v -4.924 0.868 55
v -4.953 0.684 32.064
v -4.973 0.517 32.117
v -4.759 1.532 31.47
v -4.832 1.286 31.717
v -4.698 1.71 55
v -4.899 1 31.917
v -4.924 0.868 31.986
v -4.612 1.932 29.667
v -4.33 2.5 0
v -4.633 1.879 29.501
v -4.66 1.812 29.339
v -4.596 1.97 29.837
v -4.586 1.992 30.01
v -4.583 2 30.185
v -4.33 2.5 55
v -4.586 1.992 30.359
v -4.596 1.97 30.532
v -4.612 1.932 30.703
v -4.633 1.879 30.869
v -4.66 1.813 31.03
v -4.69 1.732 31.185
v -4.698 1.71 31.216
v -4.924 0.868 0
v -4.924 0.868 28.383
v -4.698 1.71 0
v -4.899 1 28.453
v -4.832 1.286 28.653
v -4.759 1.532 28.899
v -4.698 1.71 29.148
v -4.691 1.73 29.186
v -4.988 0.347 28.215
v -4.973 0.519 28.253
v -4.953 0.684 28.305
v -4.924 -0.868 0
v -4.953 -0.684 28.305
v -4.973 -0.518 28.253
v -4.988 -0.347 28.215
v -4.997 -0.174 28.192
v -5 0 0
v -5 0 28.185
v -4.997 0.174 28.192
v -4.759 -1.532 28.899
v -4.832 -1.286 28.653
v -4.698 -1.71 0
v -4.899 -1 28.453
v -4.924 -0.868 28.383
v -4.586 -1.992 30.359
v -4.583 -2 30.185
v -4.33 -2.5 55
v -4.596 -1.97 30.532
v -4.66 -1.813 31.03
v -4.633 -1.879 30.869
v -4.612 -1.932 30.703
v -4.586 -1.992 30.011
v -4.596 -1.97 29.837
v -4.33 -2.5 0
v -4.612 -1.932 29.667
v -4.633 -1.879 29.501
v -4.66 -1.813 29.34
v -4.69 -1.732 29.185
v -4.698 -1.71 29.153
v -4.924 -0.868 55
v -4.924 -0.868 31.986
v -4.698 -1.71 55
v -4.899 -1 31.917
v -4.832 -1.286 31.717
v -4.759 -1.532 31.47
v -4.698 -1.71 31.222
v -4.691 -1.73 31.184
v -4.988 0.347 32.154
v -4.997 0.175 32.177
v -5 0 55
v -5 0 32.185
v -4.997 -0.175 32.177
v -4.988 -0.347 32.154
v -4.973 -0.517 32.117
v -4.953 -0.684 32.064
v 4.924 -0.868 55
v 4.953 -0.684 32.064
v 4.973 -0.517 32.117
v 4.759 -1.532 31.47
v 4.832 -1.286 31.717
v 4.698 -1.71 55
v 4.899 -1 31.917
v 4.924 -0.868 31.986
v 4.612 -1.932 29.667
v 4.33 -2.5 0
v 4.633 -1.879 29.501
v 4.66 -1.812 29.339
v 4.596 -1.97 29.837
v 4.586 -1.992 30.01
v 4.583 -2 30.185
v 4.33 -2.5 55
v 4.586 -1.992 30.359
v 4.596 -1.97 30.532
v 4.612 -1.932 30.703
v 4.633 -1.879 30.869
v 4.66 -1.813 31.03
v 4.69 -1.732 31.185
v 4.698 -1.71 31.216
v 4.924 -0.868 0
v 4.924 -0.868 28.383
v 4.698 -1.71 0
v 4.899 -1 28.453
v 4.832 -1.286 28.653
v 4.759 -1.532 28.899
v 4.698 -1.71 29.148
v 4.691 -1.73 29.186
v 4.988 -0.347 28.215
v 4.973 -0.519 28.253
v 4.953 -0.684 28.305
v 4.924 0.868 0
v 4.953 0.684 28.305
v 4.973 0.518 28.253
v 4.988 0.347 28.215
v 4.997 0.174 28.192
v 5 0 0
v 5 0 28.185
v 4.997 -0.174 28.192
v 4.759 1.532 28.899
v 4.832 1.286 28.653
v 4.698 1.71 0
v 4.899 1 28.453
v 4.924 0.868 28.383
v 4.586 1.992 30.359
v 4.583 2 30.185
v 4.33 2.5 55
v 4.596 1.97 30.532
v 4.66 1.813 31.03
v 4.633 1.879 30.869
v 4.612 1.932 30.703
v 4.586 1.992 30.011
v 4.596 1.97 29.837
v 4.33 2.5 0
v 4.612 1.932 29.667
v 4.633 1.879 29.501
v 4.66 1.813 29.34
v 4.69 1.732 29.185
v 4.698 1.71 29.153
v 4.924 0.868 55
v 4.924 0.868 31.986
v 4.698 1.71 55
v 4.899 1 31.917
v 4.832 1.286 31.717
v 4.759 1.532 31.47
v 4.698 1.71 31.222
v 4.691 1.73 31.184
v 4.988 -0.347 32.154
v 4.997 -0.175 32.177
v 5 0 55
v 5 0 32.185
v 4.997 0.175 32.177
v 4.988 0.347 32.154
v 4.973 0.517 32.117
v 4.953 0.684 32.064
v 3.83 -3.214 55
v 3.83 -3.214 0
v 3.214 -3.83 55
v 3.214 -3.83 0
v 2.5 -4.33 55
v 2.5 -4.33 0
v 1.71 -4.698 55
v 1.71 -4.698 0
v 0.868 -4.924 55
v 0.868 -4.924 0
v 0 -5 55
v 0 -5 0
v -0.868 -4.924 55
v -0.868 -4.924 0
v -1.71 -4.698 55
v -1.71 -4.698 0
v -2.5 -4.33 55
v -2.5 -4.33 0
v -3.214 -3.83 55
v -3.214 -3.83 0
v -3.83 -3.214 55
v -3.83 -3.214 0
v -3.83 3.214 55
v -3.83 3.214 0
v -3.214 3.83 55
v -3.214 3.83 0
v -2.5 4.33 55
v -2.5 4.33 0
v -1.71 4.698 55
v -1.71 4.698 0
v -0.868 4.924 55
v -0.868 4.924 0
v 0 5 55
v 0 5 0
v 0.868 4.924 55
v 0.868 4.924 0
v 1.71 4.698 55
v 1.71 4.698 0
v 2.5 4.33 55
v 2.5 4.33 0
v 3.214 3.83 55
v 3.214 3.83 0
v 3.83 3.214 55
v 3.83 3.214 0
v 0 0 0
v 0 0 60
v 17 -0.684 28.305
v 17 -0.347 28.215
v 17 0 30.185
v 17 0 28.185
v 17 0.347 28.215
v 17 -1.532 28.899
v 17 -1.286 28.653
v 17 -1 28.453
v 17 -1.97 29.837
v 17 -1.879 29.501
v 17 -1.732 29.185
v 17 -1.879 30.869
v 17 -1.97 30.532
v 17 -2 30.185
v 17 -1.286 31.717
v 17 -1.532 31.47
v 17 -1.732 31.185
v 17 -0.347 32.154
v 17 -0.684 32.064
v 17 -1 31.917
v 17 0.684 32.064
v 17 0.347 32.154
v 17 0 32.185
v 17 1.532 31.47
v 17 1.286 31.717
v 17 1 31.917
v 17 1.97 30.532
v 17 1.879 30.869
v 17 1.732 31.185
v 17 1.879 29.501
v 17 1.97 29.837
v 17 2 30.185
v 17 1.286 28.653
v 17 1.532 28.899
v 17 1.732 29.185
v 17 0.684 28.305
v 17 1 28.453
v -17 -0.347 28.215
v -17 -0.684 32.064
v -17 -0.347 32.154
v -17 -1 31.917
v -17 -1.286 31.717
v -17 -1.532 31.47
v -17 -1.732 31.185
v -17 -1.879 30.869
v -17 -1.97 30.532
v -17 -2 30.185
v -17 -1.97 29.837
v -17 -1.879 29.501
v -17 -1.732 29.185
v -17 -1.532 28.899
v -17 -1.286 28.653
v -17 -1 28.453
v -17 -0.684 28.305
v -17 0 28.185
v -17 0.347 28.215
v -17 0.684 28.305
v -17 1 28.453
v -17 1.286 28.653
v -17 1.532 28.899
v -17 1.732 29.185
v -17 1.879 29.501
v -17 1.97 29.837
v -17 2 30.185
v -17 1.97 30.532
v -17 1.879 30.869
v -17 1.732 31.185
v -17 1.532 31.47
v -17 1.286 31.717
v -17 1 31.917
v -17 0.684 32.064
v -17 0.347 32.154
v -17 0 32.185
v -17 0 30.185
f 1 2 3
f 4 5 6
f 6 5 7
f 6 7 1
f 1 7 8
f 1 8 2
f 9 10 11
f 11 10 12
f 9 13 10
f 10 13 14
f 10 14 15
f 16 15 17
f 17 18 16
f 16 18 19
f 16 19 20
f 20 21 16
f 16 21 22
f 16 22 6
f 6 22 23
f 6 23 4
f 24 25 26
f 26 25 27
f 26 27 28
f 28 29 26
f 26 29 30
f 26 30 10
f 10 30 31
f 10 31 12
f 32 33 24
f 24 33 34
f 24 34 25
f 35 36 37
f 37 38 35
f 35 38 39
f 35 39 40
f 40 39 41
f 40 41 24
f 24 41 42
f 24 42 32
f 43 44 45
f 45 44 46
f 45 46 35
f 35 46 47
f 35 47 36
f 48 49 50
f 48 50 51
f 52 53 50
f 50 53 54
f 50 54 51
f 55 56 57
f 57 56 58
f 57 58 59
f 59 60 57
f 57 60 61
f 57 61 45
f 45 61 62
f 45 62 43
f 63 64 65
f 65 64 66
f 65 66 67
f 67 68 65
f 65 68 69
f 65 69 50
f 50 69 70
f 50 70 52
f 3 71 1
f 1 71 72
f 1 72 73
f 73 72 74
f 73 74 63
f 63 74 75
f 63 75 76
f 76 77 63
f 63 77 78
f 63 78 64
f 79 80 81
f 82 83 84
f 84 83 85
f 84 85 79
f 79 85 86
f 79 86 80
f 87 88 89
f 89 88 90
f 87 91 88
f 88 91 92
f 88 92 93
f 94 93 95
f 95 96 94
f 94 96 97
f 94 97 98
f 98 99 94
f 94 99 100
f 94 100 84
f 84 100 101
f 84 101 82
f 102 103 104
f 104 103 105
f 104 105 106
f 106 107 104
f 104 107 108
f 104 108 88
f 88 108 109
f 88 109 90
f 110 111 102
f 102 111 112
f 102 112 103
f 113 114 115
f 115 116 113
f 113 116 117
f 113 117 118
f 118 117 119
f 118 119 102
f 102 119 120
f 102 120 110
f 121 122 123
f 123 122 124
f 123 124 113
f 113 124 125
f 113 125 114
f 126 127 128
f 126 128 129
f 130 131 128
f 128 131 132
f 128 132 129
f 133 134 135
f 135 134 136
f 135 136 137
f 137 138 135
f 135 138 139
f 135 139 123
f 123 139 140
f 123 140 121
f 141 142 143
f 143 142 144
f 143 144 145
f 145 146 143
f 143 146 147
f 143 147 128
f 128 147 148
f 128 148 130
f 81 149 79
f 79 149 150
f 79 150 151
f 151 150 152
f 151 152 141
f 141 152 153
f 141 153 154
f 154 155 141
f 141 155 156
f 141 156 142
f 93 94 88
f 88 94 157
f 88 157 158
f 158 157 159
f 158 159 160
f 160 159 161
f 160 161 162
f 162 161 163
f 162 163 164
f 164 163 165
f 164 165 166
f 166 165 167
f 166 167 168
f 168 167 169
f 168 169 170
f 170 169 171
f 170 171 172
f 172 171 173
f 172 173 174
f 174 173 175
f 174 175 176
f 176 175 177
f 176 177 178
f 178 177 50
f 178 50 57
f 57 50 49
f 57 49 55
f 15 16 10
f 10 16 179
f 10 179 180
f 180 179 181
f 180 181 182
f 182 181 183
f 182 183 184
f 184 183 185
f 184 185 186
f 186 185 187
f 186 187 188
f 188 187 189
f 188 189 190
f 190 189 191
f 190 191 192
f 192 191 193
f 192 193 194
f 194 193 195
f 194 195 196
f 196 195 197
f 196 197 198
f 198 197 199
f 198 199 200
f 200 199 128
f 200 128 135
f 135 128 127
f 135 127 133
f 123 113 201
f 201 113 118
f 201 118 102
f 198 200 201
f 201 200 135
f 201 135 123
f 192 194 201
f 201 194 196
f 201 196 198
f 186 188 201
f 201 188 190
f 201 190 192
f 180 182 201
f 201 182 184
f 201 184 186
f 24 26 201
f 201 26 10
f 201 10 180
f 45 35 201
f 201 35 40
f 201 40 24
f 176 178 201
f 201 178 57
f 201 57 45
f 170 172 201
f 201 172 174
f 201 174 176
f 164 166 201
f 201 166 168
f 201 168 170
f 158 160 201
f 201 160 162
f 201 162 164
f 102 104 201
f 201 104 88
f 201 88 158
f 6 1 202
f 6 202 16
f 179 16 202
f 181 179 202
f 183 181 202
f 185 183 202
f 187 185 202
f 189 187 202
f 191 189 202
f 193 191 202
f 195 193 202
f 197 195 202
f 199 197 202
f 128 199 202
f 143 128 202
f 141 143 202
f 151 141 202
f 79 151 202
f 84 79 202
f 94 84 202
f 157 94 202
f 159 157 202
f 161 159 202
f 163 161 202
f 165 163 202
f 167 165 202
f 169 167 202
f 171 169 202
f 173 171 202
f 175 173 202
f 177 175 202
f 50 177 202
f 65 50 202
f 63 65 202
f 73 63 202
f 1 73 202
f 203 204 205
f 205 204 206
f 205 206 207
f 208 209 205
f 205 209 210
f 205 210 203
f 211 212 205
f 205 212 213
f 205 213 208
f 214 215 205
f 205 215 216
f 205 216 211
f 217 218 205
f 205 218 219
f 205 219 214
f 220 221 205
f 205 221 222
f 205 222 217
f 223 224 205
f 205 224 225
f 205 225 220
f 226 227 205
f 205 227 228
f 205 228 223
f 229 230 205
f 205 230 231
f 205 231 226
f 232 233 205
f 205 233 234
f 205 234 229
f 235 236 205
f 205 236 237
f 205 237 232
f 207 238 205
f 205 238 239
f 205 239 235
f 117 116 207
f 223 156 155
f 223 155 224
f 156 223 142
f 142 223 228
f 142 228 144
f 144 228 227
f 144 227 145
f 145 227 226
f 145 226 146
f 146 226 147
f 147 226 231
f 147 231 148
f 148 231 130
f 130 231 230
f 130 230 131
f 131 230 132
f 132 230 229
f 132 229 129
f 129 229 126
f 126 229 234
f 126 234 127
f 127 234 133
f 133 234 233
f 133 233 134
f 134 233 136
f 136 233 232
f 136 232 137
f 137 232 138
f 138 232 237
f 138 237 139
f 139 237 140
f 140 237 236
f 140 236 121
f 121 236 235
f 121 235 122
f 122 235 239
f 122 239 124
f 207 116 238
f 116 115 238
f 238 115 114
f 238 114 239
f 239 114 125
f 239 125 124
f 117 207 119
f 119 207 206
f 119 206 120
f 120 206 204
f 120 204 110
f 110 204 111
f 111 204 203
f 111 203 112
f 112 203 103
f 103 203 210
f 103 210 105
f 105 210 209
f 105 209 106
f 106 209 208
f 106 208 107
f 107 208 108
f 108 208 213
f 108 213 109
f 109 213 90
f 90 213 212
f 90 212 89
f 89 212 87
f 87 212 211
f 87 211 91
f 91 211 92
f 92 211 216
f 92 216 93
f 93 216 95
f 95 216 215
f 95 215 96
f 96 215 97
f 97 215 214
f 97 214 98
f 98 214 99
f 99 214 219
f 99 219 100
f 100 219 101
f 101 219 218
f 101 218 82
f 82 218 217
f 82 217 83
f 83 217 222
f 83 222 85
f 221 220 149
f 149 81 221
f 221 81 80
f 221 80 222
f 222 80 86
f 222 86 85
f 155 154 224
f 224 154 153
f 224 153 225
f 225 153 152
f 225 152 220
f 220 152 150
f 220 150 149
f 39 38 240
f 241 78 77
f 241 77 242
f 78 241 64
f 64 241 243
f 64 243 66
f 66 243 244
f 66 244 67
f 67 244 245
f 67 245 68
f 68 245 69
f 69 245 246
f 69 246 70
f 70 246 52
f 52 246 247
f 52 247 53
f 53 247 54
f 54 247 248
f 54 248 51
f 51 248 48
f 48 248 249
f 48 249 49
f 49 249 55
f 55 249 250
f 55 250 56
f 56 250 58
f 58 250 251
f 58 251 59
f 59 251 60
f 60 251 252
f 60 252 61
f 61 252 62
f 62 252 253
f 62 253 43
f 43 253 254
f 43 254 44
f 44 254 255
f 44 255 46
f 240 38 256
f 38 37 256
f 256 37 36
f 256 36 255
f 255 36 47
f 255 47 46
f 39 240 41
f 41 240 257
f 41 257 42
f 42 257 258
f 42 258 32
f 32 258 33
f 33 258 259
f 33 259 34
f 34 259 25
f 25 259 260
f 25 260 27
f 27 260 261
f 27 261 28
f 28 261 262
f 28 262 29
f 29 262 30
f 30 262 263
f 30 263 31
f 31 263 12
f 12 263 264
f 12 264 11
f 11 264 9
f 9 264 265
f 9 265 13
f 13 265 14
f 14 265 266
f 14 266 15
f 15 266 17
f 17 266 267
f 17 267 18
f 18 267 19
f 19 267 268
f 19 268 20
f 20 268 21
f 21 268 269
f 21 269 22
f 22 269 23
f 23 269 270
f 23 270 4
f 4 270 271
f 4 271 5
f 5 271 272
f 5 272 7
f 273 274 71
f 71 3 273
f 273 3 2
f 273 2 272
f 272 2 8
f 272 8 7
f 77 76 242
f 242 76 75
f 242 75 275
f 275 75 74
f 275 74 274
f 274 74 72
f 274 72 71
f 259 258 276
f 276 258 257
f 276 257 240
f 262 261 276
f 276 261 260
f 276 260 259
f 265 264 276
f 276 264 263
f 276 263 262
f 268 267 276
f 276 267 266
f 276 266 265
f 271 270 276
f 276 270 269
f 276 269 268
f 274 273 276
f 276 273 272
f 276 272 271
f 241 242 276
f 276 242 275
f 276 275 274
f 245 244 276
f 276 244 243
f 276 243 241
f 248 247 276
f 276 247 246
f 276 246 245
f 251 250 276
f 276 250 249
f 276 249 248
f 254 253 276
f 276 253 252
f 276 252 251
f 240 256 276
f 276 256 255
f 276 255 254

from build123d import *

# Parameters (mm, degrees)
SKETCH_27_R      = 5
EXTRUDE_14_DEPTH = 60
CHAMFER_2_SIZE   = 5
SKETCH_29_R      = 2
EXTRUDE_15_DEPTH = 17


with BuildPart() as part:
    # 草图27 → 凸台-拉伸14 (new body)
    with BuildSketch(Plane.XY):
        Circle(SKETCH_27_R)
    extrude(amount=EXTRUDE_14_DEPTH)

    # 倒角2
    chamfer_2_edges = [part.edges().sort_by_distance(p)[0] for p in [
        (-5, 0, 60),
    ]]
    chamfer(chamfer_2_edges, length=CHAMFER_2_SIZE)

    # 草图29 → 凸台-拉伸15 (add, symmetric)
    with BuildSketch(Plane(origin=(0, 0, 0), x_dir=(0, 0, -1), z_dir=(1, 0, 0))):
        with Locations((-30.18471694, 0)):
            Circle(SKETCH_29_R)
    extrude(amount=EXTRUDE_15_DEPTH, both=True)


solid = part.part
